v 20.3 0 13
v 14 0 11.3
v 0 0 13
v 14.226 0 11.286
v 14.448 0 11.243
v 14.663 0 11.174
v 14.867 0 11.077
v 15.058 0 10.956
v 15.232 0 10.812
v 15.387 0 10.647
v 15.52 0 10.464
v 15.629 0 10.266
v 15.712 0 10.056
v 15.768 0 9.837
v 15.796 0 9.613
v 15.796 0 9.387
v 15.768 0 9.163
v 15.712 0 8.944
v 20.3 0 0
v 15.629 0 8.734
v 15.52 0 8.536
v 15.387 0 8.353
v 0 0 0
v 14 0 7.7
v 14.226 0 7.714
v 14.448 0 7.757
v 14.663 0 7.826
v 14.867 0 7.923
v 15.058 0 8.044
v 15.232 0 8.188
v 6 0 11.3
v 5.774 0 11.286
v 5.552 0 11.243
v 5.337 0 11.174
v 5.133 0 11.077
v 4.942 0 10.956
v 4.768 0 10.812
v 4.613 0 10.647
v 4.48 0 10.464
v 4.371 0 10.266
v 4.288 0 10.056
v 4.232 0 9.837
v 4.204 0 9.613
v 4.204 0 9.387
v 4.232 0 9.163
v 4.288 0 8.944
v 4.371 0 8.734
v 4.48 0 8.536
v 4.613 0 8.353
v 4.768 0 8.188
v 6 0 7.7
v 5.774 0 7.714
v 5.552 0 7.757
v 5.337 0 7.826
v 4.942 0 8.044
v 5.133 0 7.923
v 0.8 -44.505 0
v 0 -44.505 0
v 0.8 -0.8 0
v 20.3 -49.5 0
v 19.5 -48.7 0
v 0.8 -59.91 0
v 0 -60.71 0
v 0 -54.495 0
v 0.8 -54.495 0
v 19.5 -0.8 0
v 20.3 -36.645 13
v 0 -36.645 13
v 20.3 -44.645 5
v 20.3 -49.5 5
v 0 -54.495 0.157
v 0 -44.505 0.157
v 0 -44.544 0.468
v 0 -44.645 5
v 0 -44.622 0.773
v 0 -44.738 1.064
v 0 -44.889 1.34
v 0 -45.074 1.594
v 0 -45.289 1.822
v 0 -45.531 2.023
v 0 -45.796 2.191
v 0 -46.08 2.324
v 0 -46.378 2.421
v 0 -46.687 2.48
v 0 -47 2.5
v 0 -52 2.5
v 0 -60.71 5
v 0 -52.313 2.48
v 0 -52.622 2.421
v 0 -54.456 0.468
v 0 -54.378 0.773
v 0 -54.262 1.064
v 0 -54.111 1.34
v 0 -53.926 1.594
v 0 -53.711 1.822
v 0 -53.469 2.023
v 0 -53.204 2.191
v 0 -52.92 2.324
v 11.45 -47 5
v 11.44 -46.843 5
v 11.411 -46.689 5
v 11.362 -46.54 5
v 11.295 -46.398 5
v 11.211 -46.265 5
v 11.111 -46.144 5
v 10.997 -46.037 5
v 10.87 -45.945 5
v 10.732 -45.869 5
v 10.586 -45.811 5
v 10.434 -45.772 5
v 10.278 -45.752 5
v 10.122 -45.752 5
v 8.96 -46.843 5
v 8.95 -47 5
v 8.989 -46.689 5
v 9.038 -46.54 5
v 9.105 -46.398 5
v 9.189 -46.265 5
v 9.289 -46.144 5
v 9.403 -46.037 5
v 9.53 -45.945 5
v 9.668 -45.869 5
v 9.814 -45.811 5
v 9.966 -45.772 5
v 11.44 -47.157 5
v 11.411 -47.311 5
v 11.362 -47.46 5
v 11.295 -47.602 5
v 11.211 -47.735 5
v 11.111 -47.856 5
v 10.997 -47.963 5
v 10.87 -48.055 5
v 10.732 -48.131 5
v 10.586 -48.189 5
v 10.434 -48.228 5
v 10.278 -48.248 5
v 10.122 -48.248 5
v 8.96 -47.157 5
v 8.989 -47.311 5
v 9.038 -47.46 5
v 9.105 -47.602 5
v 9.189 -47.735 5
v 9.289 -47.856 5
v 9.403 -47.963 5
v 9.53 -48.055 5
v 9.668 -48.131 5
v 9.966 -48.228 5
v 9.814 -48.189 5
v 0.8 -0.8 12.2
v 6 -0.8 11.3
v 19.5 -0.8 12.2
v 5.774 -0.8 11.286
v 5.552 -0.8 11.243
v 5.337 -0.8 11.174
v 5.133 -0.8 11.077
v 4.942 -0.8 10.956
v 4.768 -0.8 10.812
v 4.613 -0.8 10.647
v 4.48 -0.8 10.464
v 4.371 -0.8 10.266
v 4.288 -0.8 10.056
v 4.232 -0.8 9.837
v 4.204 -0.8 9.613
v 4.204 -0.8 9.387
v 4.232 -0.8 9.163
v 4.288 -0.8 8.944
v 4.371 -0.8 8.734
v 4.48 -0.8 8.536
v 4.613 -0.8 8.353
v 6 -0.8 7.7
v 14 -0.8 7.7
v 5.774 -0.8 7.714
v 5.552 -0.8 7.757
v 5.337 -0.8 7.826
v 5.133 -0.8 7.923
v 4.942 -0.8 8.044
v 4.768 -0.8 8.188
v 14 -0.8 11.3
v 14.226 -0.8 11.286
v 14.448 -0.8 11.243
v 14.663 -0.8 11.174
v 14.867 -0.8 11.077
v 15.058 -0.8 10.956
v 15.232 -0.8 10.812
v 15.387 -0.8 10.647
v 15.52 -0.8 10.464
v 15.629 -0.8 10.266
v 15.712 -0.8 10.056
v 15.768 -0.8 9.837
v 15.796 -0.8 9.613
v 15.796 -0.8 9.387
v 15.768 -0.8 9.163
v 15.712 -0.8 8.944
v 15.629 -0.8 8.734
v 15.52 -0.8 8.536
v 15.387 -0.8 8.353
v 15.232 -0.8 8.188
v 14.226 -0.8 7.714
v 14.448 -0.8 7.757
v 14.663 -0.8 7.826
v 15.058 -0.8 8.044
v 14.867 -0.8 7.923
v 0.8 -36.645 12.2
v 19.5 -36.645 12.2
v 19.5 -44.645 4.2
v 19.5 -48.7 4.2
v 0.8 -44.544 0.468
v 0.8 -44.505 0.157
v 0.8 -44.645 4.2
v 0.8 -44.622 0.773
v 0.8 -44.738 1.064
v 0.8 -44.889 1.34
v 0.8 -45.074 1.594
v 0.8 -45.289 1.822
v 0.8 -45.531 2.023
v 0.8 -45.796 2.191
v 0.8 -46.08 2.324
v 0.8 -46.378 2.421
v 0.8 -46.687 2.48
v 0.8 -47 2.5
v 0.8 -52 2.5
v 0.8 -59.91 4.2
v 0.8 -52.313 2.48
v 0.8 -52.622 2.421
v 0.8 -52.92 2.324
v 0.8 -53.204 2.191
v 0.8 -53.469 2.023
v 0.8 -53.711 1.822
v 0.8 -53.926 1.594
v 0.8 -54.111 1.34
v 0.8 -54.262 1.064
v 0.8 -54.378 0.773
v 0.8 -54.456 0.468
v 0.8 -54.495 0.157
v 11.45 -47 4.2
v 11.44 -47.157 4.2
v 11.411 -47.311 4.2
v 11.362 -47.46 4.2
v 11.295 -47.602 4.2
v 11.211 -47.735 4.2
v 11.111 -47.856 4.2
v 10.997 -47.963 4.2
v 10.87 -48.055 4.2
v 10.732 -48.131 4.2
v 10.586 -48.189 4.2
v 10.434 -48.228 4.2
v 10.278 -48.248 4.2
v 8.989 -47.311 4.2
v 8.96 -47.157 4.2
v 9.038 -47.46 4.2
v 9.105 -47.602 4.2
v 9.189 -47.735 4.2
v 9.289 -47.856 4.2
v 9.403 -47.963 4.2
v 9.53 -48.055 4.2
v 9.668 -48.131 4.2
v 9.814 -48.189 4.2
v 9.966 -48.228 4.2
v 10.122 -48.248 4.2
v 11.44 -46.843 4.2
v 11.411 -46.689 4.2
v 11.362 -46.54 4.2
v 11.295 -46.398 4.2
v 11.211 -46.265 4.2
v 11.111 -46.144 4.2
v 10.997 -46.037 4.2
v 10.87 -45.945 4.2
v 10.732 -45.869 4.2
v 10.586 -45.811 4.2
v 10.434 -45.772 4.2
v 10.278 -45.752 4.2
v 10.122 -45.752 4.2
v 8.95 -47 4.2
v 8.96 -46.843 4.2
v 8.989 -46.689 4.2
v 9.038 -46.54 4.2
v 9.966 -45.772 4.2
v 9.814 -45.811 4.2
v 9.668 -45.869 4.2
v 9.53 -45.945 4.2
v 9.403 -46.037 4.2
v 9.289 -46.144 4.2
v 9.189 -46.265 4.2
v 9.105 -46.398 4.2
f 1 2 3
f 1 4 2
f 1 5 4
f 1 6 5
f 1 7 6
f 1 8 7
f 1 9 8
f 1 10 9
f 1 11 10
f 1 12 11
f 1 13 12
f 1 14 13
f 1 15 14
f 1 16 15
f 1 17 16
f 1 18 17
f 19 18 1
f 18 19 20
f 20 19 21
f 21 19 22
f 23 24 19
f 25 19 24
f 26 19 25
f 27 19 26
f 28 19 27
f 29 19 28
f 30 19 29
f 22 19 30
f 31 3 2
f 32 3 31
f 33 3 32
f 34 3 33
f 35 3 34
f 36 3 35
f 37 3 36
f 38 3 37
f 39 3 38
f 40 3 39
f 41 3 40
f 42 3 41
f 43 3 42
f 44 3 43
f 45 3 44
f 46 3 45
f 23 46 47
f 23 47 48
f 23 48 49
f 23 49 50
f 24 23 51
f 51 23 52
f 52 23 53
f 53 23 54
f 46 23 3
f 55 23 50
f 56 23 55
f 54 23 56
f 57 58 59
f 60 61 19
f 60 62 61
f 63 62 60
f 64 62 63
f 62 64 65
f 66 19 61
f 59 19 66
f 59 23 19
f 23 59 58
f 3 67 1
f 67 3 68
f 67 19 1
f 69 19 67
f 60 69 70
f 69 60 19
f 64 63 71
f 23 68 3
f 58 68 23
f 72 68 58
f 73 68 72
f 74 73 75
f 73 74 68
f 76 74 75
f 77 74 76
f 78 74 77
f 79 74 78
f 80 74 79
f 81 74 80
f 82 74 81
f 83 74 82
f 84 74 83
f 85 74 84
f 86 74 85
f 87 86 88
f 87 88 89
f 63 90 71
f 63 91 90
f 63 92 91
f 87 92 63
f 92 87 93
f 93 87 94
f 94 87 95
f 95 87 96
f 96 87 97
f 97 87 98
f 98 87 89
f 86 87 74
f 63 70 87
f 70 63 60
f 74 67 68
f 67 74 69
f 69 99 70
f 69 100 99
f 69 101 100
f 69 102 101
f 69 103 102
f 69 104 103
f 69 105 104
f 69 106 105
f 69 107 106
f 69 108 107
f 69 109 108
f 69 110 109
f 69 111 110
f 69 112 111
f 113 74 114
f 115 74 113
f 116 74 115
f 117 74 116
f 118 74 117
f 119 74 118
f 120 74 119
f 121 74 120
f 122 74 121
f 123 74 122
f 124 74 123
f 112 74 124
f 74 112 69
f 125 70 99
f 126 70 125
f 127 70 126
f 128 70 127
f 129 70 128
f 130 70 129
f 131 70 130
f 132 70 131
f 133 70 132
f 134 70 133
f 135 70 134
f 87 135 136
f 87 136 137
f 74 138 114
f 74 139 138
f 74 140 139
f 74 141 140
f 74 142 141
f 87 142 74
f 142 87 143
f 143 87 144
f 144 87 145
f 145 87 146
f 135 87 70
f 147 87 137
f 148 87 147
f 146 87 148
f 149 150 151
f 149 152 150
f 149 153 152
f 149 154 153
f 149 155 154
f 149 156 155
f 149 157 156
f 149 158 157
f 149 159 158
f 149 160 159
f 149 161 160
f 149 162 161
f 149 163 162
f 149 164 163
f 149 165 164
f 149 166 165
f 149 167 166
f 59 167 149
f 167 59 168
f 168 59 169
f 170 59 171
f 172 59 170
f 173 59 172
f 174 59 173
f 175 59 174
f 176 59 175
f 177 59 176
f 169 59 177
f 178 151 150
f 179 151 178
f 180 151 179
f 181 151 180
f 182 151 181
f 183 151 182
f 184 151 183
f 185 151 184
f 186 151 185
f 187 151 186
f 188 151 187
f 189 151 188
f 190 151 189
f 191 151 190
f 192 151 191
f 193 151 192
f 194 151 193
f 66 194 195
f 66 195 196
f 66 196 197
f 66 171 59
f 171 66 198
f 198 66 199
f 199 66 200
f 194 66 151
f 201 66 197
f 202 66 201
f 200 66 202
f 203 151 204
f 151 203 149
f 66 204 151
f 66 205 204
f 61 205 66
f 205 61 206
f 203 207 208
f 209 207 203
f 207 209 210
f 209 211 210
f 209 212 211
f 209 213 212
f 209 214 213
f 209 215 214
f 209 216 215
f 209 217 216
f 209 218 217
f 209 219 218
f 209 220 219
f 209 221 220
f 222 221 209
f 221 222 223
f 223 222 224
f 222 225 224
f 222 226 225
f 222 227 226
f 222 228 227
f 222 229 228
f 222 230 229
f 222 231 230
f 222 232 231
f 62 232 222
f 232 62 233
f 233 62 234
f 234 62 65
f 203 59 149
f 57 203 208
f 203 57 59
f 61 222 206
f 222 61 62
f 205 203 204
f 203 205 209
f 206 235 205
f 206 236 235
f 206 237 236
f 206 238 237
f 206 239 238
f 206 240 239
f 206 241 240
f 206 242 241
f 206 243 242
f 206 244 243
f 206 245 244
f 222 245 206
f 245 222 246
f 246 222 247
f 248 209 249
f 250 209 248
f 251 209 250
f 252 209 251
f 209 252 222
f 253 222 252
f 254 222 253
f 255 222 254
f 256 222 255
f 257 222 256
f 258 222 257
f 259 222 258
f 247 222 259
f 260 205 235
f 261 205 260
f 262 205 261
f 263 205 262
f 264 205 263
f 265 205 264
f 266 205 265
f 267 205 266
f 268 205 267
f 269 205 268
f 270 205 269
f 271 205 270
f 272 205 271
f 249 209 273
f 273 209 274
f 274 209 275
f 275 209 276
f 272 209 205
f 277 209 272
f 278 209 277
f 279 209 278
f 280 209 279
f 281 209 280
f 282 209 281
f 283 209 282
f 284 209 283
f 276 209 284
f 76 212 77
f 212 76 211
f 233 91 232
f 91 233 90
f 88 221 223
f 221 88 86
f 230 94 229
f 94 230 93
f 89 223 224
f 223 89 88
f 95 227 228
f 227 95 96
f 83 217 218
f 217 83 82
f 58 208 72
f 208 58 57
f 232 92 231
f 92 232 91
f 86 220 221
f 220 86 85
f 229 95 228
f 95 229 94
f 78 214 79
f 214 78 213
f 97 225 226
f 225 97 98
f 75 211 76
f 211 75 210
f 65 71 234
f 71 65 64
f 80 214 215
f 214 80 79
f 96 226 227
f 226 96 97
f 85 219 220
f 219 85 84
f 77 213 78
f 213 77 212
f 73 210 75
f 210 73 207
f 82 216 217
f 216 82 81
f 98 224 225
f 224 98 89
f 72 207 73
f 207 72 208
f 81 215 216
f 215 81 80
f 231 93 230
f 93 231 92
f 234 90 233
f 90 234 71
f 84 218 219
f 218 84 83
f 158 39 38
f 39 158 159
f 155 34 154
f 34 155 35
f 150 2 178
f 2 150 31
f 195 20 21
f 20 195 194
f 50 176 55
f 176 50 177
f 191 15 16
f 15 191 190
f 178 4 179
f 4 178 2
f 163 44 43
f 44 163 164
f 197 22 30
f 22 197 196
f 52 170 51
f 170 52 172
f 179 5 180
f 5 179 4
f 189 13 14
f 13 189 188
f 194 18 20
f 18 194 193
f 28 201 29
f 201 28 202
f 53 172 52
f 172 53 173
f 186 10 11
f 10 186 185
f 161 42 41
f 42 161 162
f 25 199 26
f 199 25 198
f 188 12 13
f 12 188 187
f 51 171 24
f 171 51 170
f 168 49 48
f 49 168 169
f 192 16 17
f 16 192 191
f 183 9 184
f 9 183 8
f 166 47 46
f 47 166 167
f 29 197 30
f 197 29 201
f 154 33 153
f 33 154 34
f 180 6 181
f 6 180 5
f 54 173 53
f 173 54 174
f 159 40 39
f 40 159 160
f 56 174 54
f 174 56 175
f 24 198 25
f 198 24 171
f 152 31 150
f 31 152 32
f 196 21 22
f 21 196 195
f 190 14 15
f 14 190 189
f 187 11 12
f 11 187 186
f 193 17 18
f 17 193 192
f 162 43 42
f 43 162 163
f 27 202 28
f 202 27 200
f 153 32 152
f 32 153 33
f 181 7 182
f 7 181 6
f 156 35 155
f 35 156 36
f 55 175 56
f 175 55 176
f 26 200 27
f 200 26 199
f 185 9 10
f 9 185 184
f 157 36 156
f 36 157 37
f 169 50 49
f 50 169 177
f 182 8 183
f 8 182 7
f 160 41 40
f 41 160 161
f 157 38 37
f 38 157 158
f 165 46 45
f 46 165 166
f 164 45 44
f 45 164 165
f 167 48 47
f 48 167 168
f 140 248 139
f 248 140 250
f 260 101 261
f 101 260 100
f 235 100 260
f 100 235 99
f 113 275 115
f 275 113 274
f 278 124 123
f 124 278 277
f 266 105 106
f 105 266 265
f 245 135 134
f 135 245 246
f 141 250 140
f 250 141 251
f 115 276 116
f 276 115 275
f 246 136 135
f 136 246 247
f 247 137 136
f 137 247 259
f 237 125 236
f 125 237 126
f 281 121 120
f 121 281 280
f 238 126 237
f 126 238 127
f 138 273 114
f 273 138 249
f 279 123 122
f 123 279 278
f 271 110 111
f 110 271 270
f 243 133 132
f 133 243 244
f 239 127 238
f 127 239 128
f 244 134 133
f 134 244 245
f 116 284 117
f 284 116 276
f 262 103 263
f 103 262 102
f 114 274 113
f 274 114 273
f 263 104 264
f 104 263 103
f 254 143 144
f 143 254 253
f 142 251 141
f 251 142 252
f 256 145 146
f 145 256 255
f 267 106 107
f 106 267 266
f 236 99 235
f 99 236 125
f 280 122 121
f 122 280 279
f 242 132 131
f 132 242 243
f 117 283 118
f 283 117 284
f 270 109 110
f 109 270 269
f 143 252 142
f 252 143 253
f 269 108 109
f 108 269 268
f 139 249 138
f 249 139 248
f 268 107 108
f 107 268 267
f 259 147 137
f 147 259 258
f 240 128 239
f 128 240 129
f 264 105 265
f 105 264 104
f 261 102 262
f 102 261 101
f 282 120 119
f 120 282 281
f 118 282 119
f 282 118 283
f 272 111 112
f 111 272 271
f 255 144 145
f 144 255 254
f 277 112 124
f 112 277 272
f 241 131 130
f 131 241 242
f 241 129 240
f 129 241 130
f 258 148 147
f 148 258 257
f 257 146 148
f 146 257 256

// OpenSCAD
/**

- [x] sitting pins
- [ ] reset button cut
- [x] usb-c cut
- [x] power button cut
- [x] board space
- [x] bottom plate that fits into horizontal cut

*/

$fn = 50;

cover_width = 20.3;
cover_length_1 = 60.71;
cover_length_2 = 49.5;

cover_height = 13;
cover_height_min = 5;

wall_thickness = 0.8;
sittin_pin_radius = 2.5 / 2;

module outer_shape() {
  linear_extrude(height=cover_height_min) {
    polygon([[0, 0], [0, -cover_length_1], [cover_width, -cover_length_2], [cover_width, 0]]);
  }

  difference() {
    linear_extrude(height=cover_height) {
      polygon([[0, 0], [0, -cover_length_1], [cover_width, -cover_length_2], [cover_width, 0]]);
    }

    translate([0, -60, 25])
      rotate([45, 0, 0])
        cube([100, 100, 50], center=true);
  }
}

module inner_shape() {
  difference() {
    translate([0, 0, -wall_thickness]) {
      linear_extrude(height=cover_height) {
        polygon([[wall_thickness, -wall_thickness], [wall_thickness, wall_thickness - cover_length_1], [cover_width - wall_thickness, wall_thickness - cover_length_2], [cover_width - wall_thickness, -wall_thickness]]);
      }
    }

    translate([0, -60, 25 - wall_thickness])
      rotate([45, 0, 0])
        cube([100, 100, 50], center=true);
  }

  translate([0, 0, -wall_thickness]) {
    linear_extrude(height=cover_height_min) {
      polygon([[wall_thickness, -wall_thickness], [wall_thickness, wall_thickness - cover_length_1], [cover_width - wall_thickness, wall_thickness - cover_length_2], [cover_width - wall_thickness, -wall_thickness]]);
    }
  }
}

module cuts() {

  translate([-5, -52, 0]) {
    rotate([0, 90, 0]) {
      hull() {
        cylinder(h=10, r=2.5, center=false);
        translate([0, 5, 0])
          cylinder(h=10, r=2.5, center=false);
      }
    }
  }

  translate([14, -5, 9.5]) {
    rotate([0, 90, 90]) {
      hull() {
        cylinder(h=10, r=1.8, center=false);
        translate([0, 8, 0])
          cylinder(h=10, r=1.8, center=false);
      }
    }
  }

  translate([cover_width - 10.1, -cover_length_2 + 2.5, wall_thickness])
    cylinder(h=cover_height_min, r=sittin_pin_radius, center=false);
}

difference() {
  outer_shape();
  inner_shape();
  cuts();
}
/*
translate([3.6, -cover_length_1 + 5.7, -wall_thickness])
  cylinder(h=cover_height_min, r=sittin_pin_radius, center=false);

translate([cover_width - 4.5, -cover_length_2 + 3, -wall_thickness])
  cylinder(h=cover_height_min, r=sittin_pin_radius, center=false);

translate([cover_width - 2.5, +2, -wall_thickness])
  cylinder(h=cover_height_min, r=sittin_pin_radius, center=false);

translate([15, 0, 2]) {
  cube([5, 3.5, 3]);
}
*/
